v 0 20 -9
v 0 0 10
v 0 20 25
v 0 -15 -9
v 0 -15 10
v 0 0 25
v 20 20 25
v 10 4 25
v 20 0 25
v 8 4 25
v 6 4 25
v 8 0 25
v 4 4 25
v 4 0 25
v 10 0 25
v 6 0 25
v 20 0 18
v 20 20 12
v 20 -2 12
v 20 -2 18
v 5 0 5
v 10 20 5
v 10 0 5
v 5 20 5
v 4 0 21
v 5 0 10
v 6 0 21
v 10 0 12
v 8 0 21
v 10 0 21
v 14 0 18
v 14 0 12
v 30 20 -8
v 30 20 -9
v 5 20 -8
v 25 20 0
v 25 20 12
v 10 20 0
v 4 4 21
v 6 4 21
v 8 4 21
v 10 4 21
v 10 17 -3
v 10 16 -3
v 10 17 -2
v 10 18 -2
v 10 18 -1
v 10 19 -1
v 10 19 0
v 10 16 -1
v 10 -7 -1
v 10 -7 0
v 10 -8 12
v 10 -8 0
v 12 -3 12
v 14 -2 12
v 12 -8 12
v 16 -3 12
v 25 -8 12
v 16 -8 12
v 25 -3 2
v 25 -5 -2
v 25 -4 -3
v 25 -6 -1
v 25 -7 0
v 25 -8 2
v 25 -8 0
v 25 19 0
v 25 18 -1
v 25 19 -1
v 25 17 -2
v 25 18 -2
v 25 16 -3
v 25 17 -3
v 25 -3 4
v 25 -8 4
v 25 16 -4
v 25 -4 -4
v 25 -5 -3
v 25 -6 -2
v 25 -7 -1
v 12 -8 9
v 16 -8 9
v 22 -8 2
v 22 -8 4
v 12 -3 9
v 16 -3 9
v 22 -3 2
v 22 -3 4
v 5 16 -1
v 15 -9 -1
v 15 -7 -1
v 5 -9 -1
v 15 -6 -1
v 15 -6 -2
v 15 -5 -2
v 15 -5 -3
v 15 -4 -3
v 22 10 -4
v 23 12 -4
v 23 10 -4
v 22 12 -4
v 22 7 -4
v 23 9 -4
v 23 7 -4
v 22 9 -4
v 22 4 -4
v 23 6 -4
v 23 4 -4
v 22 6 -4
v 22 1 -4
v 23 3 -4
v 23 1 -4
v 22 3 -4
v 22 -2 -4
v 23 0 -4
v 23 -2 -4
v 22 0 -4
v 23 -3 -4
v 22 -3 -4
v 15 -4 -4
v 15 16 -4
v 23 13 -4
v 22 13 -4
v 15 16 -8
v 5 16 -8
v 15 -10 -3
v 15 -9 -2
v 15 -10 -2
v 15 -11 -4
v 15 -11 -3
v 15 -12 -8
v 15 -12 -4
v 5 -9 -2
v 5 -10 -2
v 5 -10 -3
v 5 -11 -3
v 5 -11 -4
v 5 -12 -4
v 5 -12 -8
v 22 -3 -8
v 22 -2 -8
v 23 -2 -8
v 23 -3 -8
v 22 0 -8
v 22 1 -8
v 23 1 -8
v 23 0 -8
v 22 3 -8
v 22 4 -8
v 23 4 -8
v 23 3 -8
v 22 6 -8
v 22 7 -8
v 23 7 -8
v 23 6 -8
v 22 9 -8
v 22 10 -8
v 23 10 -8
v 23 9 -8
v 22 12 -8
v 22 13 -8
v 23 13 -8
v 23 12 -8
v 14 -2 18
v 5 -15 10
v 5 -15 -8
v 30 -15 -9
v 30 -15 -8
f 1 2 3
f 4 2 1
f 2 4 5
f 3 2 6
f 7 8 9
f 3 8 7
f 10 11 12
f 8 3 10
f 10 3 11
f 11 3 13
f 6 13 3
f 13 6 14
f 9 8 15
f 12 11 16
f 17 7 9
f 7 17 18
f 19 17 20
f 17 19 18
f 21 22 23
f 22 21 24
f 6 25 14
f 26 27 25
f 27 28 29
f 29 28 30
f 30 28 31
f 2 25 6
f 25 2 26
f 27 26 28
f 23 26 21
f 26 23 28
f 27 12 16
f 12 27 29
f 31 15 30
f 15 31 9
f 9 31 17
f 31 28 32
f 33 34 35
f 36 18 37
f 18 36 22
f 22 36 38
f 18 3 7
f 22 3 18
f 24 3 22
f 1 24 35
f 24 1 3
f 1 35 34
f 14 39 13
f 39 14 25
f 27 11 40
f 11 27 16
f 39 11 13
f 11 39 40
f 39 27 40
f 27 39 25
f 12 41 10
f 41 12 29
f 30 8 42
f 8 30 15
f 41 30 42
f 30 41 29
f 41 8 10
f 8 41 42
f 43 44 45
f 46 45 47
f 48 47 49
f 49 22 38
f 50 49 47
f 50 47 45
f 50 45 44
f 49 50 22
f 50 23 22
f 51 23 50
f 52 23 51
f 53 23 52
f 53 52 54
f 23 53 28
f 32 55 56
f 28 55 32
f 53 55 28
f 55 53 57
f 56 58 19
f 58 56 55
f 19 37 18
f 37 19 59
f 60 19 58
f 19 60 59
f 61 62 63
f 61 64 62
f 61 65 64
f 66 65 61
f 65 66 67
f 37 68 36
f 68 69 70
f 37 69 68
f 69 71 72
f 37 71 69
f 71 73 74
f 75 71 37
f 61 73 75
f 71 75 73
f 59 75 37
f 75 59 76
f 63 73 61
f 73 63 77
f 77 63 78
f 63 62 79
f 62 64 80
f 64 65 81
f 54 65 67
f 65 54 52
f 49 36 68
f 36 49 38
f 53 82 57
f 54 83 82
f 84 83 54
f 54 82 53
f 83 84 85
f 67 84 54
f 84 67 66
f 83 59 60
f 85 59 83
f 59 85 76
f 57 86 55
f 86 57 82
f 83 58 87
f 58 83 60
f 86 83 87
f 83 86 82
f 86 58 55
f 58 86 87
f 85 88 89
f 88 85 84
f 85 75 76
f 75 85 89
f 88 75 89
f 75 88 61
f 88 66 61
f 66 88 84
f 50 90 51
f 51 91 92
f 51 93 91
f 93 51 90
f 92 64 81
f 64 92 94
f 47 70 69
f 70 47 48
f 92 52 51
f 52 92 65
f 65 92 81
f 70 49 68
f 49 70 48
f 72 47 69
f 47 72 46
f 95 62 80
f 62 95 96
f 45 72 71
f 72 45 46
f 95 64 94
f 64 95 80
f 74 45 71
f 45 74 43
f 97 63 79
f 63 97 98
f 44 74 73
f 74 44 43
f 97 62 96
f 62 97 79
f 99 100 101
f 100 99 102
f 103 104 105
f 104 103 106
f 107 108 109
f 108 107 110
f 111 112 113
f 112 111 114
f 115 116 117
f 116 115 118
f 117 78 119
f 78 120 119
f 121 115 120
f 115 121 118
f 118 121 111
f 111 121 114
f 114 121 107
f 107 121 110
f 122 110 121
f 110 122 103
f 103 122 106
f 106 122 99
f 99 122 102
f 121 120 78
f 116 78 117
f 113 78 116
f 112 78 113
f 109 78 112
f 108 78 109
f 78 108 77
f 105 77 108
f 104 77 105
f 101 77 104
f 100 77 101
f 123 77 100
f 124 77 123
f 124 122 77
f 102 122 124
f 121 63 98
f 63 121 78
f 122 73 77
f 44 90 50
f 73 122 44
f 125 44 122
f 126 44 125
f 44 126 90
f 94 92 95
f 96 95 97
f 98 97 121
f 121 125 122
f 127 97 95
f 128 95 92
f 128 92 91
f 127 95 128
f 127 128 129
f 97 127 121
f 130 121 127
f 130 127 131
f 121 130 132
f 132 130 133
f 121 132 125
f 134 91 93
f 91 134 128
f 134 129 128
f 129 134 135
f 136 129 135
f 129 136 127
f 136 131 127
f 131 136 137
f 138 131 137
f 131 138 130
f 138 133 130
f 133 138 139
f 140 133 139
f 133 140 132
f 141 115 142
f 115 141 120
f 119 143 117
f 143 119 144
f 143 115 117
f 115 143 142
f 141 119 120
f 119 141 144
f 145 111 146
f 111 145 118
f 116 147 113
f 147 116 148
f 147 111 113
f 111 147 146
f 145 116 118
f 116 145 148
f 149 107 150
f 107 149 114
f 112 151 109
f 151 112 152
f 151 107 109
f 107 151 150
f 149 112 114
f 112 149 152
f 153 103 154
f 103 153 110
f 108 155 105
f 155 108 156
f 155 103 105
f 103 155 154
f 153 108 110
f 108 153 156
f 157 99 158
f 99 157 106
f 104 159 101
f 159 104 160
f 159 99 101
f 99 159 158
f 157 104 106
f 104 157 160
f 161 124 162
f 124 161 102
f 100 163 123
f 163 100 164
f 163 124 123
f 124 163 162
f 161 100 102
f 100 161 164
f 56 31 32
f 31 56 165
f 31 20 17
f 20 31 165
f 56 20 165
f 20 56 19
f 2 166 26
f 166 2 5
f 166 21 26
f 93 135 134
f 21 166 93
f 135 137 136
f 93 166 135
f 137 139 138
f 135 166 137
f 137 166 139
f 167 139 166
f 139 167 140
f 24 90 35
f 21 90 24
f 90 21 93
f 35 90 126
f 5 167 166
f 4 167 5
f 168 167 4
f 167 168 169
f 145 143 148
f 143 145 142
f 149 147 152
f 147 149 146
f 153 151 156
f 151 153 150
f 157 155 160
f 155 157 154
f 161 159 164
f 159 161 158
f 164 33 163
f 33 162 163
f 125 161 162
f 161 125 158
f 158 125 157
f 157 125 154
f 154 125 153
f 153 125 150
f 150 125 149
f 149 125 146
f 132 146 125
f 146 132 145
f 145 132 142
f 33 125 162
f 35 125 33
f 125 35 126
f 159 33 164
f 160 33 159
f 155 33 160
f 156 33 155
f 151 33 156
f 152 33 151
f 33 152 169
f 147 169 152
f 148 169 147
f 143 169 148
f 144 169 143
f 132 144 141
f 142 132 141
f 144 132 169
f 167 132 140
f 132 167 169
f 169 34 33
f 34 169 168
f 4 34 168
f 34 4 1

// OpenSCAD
difference() {

	union() {

		translate([0,0,5])
		difference() {
			cube( [20,20,20] );

			translate([4,-1,16])
			cube( [2,5,5] );
			translate([8,-1,16])
			cube( [2,5,5] );
		}

		translate([20-6,-2,+3])
		cube( [6,10,15] );

		translate([10,-8,0])
		difference() {
			cube( [15,28,12] );

			translate([2,-1,9])
			cube( [4,6,4] );

			translate([12,-1,2])
			cube( [4,6,2] );
		}

		for( i=[1:4] ) {
			translate([10,-8+i,-i])
			cube( [15,28-2*i,1] );
		}

		translate([0,-15,-20])
		cube( [5,35,30] );

		for( i=[1:4] ) {
			translate([0,-8-i*1,-20])
			cube( [15,25,20-i*1] );
		}

		translate([0,-15,-20])
		cube( [30,35,12] );

		for( i=[0:5] ) {
			translate([22,-3+3*i,-10])
			cube( [1,1,10] );
		}

	}

	translate([-1,-20,-21])
	cube( [40,50,12] );
	
}
